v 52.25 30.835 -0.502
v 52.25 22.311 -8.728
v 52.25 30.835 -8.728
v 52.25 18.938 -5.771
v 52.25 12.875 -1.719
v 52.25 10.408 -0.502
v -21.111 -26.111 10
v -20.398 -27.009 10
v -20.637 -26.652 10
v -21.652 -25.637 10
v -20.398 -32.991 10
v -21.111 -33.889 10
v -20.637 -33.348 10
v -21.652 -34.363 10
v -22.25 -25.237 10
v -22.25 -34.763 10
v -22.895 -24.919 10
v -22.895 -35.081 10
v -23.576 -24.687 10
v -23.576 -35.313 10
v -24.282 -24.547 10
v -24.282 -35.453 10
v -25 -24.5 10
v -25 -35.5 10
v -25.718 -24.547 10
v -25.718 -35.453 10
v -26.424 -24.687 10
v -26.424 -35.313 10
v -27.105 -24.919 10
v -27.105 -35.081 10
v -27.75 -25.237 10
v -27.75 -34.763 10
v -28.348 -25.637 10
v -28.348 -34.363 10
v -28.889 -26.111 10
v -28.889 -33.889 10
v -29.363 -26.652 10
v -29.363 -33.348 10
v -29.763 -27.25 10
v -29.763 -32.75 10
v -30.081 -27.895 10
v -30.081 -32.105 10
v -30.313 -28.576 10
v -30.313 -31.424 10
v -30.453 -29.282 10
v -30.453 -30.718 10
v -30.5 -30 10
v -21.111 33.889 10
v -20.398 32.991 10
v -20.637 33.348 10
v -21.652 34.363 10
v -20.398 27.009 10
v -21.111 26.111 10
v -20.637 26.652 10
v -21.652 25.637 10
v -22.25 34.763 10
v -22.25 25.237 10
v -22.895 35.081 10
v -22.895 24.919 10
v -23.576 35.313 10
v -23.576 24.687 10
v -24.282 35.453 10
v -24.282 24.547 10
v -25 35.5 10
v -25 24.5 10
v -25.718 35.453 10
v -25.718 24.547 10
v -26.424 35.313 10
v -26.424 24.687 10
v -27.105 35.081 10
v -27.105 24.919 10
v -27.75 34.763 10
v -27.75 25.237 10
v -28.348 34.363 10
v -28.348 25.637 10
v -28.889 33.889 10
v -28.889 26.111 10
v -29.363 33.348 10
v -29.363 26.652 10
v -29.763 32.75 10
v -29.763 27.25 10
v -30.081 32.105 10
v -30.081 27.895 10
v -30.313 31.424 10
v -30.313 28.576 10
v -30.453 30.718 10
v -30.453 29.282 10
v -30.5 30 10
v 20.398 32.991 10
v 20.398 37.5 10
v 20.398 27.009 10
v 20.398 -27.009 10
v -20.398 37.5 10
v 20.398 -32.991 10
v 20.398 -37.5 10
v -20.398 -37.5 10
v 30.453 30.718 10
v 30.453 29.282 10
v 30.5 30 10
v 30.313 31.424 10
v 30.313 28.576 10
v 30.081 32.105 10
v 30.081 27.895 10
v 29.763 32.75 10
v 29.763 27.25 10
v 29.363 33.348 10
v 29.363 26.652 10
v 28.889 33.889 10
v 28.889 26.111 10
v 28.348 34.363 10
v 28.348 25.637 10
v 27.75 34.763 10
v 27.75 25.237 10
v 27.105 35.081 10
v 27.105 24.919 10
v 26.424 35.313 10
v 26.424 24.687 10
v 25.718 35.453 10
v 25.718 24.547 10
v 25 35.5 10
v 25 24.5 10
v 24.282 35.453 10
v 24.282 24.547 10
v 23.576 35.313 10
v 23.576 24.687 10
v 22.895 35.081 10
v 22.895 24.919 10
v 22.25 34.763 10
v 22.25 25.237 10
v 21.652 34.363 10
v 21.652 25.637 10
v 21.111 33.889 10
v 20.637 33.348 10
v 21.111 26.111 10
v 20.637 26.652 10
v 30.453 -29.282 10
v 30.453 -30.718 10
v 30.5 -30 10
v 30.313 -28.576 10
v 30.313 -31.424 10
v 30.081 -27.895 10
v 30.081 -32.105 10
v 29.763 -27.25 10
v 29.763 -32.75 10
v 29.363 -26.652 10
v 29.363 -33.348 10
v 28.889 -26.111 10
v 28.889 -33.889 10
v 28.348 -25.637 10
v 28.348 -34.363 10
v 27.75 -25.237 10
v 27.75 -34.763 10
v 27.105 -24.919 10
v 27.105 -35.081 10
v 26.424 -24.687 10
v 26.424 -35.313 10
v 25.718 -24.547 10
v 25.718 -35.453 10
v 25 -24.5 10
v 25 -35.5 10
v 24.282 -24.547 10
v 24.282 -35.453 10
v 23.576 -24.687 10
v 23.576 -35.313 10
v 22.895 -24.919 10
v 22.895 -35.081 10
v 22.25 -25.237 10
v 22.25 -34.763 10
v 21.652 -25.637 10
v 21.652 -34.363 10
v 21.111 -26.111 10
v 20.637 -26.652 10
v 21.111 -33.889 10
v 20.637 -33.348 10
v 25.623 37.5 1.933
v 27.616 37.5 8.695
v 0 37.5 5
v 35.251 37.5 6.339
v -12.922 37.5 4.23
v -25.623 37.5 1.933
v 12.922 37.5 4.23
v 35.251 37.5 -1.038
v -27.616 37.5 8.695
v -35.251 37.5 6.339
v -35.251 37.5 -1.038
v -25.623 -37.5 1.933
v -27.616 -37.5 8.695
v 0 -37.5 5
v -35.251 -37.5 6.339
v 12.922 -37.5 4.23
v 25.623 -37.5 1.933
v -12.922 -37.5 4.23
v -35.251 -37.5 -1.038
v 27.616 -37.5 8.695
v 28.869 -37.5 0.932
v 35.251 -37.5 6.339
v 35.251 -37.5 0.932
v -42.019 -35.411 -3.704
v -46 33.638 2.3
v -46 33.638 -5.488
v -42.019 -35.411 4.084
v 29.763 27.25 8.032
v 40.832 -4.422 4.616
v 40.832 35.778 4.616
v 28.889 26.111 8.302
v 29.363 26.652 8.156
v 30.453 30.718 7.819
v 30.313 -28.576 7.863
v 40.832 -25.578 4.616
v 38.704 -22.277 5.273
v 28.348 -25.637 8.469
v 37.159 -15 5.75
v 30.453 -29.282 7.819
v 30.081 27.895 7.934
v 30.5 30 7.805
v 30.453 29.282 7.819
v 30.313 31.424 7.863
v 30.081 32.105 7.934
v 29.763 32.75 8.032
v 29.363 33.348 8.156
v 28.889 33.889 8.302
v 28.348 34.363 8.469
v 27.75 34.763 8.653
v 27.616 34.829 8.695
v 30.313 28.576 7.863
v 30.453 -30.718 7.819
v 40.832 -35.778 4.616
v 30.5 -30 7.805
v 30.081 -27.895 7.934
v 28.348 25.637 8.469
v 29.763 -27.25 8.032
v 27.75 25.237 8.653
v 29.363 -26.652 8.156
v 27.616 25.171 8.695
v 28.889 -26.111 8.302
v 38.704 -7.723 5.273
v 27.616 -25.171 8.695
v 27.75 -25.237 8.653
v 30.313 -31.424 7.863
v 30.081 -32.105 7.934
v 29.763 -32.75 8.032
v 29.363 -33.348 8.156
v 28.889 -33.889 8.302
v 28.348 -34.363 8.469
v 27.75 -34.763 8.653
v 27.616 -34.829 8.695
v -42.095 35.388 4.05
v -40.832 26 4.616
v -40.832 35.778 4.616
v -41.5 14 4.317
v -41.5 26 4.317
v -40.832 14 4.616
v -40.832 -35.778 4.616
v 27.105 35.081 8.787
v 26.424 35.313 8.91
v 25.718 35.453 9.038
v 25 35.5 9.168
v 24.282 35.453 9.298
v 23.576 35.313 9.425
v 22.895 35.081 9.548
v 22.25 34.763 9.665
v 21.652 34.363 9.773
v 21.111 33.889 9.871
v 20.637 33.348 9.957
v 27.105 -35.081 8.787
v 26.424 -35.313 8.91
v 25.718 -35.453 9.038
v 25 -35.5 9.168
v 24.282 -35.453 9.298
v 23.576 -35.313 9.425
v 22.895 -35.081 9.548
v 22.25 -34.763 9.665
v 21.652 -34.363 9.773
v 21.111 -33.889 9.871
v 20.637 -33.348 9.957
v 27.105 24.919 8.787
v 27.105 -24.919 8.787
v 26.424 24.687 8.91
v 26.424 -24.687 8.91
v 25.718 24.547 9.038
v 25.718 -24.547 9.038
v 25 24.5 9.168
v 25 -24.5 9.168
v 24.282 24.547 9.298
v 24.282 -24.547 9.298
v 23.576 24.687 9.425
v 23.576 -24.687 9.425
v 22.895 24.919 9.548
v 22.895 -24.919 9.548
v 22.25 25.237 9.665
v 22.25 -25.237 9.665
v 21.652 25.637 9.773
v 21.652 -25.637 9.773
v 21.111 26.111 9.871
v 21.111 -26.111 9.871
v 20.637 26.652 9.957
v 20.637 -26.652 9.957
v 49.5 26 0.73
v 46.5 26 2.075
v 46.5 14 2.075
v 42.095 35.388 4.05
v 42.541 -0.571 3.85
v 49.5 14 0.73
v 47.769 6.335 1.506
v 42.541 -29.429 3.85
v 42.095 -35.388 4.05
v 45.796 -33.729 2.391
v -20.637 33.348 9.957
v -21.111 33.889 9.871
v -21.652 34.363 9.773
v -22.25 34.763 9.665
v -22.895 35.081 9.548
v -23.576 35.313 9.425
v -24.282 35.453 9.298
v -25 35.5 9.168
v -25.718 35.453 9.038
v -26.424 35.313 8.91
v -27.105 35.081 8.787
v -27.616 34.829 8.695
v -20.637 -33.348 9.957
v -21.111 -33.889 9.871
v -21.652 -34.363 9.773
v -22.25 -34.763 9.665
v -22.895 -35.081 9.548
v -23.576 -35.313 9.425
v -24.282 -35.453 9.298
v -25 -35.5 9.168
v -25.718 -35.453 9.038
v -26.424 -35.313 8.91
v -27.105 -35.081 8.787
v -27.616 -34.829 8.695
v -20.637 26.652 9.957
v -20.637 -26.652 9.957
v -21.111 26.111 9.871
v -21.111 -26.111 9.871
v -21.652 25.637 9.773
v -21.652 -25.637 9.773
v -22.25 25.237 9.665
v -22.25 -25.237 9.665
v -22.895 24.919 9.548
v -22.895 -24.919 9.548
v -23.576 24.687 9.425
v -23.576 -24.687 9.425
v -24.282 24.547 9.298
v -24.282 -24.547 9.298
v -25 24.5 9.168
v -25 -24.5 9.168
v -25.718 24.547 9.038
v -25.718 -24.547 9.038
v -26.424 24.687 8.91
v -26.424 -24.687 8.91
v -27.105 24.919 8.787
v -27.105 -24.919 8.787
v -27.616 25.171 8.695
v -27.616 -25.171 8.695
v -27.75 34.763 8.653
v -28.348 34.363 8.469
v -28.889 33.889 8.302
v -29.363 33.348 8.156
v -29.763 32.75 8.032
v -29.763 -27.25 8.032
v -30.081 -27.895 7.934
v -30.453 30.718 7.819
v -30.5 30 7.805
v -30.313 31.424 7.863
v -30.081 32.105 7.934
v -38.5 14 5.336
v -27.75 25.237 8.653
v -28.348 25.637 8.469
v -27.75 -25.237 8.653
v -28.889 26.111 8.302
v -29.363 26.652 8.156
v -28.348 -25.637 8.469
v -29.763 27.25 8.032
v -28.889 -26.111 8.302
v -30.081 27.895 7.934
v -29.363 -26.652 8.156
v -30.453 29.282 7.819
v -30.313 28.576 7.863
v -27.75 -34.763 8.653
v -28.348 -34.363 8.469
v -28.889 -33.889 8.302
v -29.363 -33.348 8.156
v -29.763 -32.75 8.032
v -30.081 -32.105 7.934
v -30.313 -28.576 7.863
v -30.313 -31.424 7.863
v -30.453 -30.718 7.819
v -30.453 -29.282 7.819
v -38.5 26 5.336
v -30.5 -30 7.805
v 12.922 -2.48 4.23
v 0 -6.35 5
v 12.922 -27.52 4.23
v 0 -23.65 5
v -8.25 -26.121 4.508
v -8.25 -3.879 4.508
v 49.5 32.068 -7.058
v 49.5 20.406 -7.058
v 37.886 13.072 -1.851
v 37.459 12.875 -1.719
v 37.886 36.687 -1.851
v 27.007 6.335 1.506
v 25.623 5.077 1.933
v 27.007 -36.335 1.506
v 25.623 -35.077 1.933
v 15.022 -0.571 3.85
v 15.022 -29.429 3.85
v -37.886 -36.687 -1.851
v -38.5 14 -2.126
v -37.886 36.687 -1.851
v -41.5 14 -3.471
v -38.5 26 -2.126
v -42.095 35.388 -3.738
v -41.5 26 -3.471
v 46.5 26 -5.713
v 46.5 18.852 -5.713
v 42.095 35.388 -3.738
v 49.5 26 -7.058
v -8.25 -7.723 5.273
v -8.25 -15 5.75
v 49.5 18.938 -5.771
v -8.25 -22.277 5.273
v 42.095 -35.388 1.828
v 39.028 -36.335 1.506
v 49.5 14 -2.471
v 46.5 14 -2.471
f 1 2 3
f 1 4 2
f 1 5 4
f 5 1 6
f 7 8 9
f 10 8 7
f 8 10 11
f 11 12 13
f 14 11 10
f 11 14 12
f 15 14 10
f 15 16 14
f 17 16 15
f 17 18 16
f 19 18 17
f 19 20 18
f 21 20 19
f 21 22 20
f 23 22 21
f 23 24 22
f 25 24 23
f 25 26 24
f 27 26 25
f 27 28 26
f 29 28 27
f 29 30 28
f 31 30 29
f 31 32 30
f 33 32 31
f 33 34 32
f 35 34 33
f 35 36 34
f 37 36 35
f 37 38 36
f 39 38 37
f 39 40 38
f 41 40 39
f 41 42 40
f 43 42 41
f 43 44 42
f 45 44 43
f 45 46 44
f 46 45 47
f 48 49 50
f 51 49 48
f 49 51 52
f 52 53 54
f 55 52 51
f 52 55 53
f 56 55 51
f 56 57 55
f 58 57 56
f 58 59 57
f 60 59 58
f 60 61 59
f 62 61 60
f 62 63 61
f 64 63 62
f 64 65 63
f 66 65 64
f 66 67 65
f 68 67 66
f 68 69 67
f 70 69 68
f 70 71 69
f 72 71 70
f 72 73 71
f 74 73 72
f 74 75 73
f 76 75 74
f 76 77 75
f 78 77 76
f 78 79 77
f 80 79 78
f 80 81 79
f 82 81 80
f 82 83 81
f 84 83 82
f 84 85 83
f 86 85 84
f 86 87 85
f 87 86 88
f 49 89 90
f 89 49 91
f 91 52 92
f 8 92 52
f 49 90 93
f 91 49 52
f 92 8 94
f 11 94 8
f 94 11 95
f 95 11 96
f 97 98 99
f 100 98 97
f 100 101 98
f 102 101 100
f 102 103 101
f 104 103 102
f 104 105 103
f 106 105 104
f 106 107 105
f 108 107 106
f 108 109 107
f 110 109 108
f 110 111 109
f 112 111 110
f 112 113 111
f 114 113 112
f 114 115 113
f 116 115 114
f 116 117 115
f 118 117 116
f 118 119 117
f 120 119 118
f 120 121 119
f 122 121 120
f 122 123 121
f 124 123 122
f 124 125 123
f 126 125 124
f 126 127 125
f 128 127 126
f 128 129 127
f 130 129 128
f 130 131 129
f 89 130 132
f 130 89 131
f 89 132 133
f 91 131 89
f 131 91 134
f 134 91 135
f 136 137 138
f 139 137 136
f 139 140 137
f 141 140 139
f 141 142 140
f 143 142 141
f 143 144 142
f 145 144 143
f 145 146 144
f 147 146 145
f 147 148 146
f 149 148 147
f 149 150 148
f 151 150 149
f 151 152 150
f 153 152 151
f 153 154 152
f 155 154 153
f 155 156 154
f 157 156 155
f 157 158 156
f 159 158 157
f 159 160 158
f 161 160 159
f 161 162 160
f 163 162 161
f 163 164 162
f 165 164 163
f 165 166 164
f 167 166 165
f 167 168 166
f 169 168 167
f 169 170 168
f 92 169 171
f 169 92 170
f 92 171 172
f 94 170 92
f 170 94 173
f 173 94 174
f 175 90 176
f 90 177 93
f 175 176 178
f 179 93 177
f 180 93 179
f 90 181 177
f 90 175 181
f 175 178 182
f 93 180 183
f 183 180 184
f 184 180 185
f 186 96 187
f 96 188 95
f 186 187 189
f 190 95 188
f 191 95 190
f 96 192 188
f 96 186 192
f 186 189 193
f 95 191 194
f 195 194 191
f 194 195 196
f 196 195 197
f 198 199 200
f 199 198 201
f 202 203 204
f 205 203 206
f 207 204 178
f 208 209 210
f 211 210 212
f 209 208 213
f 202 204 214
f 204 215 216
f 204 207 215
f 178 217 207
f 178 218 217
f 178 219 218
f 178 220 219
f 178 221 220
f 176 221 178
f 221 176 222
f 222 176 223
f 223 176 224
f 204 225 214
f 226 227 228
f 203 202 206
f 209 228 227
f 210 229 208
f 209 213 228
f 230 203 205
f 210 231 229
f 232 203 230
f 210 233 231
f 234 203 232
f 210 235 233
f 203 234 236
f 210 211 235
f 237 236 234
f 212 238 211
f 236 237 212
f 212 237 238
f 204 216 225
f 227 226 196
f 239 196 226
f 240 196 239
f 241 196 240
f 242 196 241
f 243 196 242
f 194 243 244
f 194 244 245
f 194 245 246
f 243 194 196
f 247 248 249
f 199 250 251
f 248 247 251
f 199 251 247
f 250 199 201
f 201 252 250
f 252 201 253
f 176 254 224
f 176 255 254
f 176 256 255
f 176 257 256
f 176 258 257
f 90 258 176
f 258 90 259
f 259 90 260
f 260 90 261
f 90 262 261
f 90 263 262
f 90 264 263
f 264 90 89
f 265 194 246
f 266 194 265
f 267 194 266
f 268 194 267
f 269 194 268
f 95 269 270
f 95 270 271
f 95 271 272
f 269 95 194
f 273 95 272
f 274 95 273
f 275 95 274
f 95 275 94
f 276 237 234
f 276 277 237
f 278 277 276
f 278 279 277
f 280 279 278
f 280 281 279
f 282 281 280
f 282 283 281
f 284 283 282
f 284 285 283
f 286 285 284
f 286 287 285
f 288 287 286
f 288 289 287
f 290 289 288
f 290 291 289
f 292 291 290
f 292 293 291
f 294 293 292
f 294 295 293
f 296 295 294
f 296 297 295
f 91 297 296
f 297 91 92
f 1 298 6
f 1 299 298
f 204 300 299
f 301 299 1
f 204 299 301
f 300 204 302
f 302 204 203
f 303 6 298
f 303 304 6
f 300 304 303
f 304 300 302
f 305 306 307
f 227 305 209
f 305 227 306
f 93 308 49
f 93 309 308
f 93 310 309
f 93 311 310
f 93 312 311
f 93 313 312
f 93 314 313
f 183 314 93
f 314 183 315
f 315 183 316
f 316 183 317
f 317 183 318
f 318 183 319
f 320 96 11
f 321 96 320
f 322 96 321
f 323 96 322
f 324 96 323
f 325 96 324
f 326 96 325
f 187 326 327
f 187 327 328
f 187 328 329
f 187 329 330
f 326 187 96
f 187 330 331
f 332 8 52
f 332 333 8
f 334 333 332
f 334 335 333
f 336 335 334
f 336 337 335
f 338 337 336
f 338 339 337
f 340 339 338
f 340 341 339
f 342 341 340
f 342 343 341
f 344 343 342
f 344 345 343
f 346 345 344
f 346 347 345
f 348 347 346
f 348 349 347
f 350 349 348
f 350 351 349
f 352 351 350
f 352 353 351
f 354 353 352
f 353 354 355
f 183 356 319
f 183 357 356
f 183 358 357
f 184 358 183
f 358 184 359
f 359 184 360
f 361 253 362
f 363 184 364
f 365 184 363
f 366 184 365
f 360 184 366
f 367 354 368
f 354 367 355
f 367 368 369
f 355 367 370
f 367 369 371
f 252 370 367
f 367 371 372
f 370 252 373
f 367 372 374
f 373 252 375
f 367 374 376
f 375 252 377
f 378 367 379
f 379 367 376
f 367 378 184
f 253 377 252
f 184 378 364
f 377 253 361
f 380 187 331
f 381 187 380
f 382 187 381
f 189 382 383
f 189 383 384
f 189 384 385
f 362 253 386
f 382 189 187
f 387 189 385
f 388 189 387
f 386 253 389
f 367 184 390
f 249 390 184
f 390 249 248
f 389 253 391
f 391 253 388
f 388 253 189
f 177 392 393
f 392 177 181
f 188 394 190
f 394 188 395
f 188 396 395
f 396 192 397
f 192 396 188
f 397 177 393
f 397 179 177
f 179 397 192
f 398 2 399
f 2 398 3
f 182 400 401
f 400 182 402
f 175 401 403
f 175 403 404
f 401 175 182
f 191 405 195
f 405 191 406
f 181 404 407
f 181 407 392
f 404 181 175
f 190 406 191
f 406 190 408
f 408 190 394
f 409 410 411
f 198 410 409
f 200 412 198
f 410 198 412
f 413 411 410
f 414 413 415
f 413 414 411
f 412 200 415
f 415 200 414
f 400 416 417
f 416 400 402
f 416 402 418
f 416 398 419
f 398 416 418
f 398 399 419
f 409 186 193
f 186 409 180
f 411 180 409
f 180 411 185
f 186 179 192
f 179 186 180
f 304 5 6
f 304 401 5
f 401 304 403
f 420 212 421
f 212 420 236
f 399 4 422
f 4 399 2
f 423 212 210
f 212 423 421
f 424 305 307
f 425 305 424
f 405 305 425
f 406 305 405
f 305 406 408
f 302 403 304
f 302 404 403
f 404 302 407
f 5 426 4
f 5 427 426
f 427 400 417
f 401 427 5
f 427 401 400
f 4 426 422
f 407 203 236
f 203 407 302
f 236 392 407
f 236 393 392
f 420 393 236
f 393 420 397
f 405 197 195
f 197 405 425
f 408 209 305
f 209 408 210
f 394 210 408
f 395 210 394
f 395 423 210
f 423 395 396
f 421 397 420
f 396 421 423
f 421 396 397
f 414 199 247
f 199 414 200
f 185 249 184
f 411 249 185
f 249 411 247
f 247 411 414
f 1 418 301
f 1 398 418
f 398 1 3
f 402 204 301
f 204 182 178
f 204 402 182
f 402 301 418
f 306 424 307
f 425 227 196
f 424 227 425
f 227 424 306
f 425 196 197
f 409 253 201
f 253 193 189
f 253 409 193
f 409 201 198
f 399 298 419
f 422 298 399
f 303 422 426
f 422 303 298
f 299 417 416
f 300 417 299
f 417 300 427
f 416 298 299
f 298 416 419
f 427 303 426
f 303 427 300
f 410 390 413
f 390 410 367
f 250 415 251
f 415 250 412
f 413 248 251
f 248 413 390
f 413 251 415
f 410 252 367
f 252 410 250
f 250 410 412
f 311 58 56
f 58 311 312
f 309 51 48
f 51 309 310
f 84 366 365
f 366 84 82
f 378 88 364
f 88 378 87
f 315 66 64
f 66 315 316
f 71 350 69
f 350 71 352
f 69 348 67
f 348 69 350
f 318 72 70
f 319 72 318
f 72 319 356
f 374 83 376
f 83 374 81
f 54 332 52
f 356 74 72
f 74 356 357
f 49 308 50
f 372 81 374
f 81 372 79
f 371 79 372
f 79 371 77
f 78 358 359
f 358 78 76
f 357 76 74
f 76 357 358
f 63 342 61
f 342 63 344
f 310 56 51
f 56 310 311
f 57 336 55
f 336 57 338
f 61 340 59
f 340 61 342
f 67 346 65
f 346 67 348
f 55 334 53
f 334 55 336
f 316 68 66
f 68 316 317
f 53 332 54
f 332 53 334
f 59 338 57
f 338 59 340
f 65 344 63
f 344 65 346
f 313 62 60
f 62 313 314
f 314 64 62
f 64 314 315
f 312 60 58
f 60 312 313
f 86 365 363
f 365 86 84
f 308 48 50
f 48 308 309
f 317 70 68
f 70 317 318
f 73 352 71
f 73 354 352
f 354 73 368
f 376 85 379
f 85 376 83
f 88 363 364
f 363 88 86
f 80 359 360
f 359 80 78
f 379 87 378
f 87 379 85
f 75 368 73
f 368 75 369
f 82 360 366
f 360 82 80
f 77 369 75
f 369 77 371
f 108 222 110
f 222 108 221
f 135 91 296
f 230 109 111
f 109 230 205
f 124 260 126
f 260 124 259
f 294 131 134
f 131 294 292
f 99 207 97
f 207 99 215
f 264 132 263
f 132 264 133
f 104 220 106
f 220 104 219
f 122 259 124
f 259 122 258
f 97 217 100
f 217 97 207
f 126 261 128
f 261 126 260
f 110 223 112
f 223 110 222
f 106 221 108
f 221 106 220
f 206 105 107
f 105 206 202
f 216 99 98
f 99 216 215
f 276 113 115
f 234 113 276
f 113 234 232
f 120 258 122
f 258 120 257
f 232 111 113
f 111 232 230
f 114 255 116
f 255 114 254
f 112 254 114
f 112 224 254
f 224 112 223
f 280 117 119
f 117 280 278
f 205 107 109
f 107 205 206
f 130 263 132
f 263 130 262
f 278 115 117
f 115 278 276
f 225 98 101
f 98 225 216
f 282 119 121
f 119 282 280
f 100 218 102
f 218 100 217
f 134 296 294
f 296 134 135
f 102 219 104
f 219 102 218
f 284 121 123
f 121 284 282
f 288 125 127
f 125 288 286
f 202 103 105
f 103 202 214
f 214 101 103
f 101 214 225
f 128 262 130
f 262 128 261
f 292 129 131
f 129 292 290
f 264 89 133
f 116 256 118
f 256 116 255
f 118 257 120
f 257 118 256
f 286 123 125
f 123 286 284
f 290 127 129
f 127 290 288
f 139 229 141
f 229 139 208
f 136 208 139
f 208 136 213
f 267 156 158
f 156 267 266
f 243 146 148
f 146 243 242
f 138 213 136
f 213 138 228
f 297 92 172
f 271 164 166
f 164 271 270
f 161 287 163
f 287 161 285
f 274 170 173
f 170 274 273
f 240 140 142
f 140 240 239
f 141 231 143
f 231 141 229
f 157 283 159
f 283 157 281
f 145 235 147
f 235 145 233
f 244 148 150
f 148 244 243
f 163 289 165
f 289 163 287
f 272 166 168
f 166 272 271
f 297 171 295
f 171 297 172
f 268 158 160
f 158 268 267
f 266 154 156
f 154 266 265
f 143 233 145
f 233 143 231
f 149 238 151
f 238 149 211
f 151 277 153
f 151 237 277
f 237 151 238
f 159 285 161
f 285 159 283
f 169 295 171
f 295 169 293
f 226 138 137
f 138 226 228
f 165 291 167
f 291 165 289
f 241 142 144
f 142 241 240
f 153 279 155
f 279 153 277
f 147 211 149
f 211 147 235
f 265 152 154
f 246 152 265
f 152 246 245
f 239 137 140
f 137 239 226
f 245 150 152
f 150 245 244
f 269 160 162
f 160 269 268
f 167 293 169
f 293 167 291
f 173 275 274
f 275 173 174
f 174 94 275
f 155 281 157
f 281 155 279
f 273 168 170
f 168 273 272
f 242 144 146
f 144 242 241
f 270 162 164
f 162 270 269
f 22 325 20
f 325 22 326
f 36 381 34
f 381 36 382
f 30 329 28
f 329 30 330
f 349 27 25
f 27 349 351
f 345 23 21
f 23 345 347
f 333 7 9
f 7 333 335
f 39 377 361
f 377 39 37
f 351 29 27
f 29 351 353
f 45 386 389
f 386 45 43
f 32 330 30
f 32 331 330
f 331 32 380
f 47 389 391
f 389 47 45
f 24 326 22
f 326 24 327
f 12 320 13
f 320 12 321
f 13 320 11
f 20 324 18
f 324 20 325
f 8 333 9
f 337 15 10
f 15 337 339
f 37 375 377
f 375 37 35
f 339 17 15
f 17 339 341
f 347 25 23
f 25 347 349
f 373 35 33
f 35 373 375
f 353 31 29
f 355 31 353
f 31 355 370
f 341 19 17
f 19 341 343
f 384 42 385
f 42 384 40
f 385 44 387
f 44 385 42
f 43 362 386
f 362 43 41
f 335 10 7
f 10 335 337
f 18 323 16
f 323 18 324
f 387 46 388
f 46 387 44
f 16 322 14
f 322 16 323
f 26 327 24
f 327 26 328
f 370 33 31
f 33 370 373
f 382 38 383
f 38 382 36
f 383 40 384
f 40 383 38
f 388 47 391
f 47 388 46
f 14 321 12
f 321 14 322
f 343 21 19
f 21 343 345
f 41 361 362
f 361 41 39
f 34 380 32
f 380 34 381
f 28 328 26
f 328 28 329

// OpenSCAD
// Generated by SolidPython 1.1.3 on 2024-04-29 10:51:11
$fn = 48;


union() {
	scale(v = [10, 10, 10]) {
		union() {
			difference() {
				difference() {
					scale(v = [1.1000000000, 1, 1]) {
						difference() {
							difference() {
								difference() {
									difference() {
										difference() {
											difference() {
												cube(center = true, size = [9.5000000000, 7.5000000000, 2]);
												rotate(a = [0, 0, 3]) {
													translate(v = [-5, 0, 0]) {
														cube(center = true, size = [2, 10, 3]);
													}
												}
											}
											difference() {
												translate(v = [0, 0, -8.5000000000]) {
													rotate(a = [90, 0, 0]) {
														cylinder(center = true, h = 10, r = 12);
													}
												}
												translate(v = [0, 0, -8.5000000000]) {
													rotate(a = [90, 0, 0]) {
														cylinder(center = true, h = 11, r = 9.7000000000);
													}
												}
											}
										}
										translate(v = [0, 0, -8.5000000000]) {
											rotate(a = [90, 0, 0]) {
												cylinder(center = true, h = 10, r = 9);
											}
										}
									}
									translate(v = [4.2500000000, -1.5000000000, -5]) {
										rotate(a = [90, 0, 90]) {
											cylinder(center = true, h = 10, r = 5.5750000000);
										}
									}
								}
								difference() {
									translate(v = [0, -5.7000000000, 0]) {
										cylinder(center = true, h = 10, r = 11);
									}
									translate(v = [0, -5.7000000000, 0]) {
										cylinder(center = true, h = 11, r = 10);
									}
								}
							}
							difference() {
								translate(v = [0, 5.7000000000, 0]) {
									cylinder(center = true, h = 10, r = 11);
								}
								translate(v = [0, 5.7000000000, 0]) {
									cylinder(center = true, h = 11, r = 10);
								}
							}
						}
					}
					translate(v = [4.8000000000, 2, 0]) {
						cube(center = true, size = [0.3000000000, 1.2000000000, 10]);
					}
				}
				translate(v = [-4, 2, 0]) {
					cube(center = true, size = [0.3000000000, 1.2000000000, 10]);
				}
			}
			translate(v = [-2.5000000000, 3, 0.7500000000]) {
				cylinder(center = true, h = 0.5000000000, r = 0.5500000000);
			}
			translate(v = [2.5000000000, 3, 0.7500000000]) {
				cylinder(center = true, h = 0.5000000000, r = 0.5500000000);
			}
			translate(v = [2.5000000000, -3, 0.7500000000]) {
				cylinder(center = true, h = 0.5000000000, r = 0.5500000000);
			}
			translate(v = [-2.5000000000, -3, 0.7500000000]) {
				cylinder(center = true, h = 0.5000000000, r = 0.5500000000);
			}
		}
	}
}
/***********************************************
*********      SolidPython code:      **********
************************************************
 
#! /usr/bin/env python3
import sys
import numpy as np
from solid import scad_render_to_file, difference
from solid.objects import cube, translate, union, rotate, color, cylinder, scale


SEGMENTS = 48

def basic_geometry():

    shapes = []
    base = cube([9.5, 7.5, 2], center=True)
    cut0 = rotate([0, 0, 3])(translate([-5, 0, 0])(cube([2, 10, 3], center=True)))
    base = difference()(base, cut0)
    cyl = translate([0, 0, -8.5])(rotate([90, 0, 0])(cylinder(r=9, h=10, center=True)))
    cyl2 = translate([0, 0, -8.5])(rotate([90, 0, 0])(cylinder(r=9.7, h=11, center=True)))
    cyl3 = translate([0, 0, -8.5])(rotate([90, 0, 0])(cylinder(r=12, h=10, center=True)))
    cyl3 = difference()(cyl3, cyl2)
    base = difference()(base, cyl3)
    base = difference()(base, cyl)
    cyl_thumb = translate([4.25, -1.5, -5])(rotate([90, 0, 90])(cylinder(r=3.75*.5+3+.7, h=10, center=True)))
    base = difference()(base, cyl_thumb)

    cyl2 = translate([0, -5.7, 0])(cylinder(r=10, h=11, center=True))
    cyl3 = translate([0, -5.7, 0])(cylinder(r=11, h=10, center=True))
    cyl3 = difference()(cyl3, cyl2)
    base = difference()(base, cyl3)

    cyl2 = translate([0, 5.7, 0])(cylinder(r=10, h=11, center=True))
    cyl3 = translate([0, 5.7, 0])(cylinder(r=11, h=10, center=True))
    cyl3 = difference()(cyl3, cyl2)
    base = difference()(base, cyl3)

    base = scale([1.1, 1, 1])(base)

    strap_hole = translate([4.8, 2, 0])(cube([.3, 1.2, 10], center=True))
    base = difference()(base, strap_hole)
    strap_hole = translate([-4, 2, 0])(cube([.3, 1.2, 10], center=True))
    base = difference()(base, strap_hole)

    point_place = [
        translate([-2.5, 3, .75])(cylinder(r=1.1*.5, h=.5, center=True)),
        translate([2.5, 3, .75])(cylinder(r=1.1*.5, h=.5, center=True)),
        translate([2.5, -3, .75])(cylinder(r=1.1*.5, h=.5, center=True)),
        translate([-2.5, -3, .75])(cylinder(r=1.1*.5, h=.5, center=True))]

    base = union()(base, *point_place)
    base = scale([10, 10, 10])(base)
    shapes.append(base)
    return union()(*shapes)

if __name__ == '__main__':
    out_dir = sys.argv[1] if len(sys.argv) > 1 else None

    a = basic_geometry()

    # Adding the file_header argument as shown allows you to change
    # the detail of arcs by changing the SEGMENTS variable.  This can
    # be expensive when making lots of small curves, but is otherwise
    # useful.
    file_out = scad_render_to_file(a, out_dir=out_dir, file_header=f'$fn = {SEGMENTS};')
    print(f"{__file__}: SCAD file written to: \n{file_out}")
 
 
************************************************/
